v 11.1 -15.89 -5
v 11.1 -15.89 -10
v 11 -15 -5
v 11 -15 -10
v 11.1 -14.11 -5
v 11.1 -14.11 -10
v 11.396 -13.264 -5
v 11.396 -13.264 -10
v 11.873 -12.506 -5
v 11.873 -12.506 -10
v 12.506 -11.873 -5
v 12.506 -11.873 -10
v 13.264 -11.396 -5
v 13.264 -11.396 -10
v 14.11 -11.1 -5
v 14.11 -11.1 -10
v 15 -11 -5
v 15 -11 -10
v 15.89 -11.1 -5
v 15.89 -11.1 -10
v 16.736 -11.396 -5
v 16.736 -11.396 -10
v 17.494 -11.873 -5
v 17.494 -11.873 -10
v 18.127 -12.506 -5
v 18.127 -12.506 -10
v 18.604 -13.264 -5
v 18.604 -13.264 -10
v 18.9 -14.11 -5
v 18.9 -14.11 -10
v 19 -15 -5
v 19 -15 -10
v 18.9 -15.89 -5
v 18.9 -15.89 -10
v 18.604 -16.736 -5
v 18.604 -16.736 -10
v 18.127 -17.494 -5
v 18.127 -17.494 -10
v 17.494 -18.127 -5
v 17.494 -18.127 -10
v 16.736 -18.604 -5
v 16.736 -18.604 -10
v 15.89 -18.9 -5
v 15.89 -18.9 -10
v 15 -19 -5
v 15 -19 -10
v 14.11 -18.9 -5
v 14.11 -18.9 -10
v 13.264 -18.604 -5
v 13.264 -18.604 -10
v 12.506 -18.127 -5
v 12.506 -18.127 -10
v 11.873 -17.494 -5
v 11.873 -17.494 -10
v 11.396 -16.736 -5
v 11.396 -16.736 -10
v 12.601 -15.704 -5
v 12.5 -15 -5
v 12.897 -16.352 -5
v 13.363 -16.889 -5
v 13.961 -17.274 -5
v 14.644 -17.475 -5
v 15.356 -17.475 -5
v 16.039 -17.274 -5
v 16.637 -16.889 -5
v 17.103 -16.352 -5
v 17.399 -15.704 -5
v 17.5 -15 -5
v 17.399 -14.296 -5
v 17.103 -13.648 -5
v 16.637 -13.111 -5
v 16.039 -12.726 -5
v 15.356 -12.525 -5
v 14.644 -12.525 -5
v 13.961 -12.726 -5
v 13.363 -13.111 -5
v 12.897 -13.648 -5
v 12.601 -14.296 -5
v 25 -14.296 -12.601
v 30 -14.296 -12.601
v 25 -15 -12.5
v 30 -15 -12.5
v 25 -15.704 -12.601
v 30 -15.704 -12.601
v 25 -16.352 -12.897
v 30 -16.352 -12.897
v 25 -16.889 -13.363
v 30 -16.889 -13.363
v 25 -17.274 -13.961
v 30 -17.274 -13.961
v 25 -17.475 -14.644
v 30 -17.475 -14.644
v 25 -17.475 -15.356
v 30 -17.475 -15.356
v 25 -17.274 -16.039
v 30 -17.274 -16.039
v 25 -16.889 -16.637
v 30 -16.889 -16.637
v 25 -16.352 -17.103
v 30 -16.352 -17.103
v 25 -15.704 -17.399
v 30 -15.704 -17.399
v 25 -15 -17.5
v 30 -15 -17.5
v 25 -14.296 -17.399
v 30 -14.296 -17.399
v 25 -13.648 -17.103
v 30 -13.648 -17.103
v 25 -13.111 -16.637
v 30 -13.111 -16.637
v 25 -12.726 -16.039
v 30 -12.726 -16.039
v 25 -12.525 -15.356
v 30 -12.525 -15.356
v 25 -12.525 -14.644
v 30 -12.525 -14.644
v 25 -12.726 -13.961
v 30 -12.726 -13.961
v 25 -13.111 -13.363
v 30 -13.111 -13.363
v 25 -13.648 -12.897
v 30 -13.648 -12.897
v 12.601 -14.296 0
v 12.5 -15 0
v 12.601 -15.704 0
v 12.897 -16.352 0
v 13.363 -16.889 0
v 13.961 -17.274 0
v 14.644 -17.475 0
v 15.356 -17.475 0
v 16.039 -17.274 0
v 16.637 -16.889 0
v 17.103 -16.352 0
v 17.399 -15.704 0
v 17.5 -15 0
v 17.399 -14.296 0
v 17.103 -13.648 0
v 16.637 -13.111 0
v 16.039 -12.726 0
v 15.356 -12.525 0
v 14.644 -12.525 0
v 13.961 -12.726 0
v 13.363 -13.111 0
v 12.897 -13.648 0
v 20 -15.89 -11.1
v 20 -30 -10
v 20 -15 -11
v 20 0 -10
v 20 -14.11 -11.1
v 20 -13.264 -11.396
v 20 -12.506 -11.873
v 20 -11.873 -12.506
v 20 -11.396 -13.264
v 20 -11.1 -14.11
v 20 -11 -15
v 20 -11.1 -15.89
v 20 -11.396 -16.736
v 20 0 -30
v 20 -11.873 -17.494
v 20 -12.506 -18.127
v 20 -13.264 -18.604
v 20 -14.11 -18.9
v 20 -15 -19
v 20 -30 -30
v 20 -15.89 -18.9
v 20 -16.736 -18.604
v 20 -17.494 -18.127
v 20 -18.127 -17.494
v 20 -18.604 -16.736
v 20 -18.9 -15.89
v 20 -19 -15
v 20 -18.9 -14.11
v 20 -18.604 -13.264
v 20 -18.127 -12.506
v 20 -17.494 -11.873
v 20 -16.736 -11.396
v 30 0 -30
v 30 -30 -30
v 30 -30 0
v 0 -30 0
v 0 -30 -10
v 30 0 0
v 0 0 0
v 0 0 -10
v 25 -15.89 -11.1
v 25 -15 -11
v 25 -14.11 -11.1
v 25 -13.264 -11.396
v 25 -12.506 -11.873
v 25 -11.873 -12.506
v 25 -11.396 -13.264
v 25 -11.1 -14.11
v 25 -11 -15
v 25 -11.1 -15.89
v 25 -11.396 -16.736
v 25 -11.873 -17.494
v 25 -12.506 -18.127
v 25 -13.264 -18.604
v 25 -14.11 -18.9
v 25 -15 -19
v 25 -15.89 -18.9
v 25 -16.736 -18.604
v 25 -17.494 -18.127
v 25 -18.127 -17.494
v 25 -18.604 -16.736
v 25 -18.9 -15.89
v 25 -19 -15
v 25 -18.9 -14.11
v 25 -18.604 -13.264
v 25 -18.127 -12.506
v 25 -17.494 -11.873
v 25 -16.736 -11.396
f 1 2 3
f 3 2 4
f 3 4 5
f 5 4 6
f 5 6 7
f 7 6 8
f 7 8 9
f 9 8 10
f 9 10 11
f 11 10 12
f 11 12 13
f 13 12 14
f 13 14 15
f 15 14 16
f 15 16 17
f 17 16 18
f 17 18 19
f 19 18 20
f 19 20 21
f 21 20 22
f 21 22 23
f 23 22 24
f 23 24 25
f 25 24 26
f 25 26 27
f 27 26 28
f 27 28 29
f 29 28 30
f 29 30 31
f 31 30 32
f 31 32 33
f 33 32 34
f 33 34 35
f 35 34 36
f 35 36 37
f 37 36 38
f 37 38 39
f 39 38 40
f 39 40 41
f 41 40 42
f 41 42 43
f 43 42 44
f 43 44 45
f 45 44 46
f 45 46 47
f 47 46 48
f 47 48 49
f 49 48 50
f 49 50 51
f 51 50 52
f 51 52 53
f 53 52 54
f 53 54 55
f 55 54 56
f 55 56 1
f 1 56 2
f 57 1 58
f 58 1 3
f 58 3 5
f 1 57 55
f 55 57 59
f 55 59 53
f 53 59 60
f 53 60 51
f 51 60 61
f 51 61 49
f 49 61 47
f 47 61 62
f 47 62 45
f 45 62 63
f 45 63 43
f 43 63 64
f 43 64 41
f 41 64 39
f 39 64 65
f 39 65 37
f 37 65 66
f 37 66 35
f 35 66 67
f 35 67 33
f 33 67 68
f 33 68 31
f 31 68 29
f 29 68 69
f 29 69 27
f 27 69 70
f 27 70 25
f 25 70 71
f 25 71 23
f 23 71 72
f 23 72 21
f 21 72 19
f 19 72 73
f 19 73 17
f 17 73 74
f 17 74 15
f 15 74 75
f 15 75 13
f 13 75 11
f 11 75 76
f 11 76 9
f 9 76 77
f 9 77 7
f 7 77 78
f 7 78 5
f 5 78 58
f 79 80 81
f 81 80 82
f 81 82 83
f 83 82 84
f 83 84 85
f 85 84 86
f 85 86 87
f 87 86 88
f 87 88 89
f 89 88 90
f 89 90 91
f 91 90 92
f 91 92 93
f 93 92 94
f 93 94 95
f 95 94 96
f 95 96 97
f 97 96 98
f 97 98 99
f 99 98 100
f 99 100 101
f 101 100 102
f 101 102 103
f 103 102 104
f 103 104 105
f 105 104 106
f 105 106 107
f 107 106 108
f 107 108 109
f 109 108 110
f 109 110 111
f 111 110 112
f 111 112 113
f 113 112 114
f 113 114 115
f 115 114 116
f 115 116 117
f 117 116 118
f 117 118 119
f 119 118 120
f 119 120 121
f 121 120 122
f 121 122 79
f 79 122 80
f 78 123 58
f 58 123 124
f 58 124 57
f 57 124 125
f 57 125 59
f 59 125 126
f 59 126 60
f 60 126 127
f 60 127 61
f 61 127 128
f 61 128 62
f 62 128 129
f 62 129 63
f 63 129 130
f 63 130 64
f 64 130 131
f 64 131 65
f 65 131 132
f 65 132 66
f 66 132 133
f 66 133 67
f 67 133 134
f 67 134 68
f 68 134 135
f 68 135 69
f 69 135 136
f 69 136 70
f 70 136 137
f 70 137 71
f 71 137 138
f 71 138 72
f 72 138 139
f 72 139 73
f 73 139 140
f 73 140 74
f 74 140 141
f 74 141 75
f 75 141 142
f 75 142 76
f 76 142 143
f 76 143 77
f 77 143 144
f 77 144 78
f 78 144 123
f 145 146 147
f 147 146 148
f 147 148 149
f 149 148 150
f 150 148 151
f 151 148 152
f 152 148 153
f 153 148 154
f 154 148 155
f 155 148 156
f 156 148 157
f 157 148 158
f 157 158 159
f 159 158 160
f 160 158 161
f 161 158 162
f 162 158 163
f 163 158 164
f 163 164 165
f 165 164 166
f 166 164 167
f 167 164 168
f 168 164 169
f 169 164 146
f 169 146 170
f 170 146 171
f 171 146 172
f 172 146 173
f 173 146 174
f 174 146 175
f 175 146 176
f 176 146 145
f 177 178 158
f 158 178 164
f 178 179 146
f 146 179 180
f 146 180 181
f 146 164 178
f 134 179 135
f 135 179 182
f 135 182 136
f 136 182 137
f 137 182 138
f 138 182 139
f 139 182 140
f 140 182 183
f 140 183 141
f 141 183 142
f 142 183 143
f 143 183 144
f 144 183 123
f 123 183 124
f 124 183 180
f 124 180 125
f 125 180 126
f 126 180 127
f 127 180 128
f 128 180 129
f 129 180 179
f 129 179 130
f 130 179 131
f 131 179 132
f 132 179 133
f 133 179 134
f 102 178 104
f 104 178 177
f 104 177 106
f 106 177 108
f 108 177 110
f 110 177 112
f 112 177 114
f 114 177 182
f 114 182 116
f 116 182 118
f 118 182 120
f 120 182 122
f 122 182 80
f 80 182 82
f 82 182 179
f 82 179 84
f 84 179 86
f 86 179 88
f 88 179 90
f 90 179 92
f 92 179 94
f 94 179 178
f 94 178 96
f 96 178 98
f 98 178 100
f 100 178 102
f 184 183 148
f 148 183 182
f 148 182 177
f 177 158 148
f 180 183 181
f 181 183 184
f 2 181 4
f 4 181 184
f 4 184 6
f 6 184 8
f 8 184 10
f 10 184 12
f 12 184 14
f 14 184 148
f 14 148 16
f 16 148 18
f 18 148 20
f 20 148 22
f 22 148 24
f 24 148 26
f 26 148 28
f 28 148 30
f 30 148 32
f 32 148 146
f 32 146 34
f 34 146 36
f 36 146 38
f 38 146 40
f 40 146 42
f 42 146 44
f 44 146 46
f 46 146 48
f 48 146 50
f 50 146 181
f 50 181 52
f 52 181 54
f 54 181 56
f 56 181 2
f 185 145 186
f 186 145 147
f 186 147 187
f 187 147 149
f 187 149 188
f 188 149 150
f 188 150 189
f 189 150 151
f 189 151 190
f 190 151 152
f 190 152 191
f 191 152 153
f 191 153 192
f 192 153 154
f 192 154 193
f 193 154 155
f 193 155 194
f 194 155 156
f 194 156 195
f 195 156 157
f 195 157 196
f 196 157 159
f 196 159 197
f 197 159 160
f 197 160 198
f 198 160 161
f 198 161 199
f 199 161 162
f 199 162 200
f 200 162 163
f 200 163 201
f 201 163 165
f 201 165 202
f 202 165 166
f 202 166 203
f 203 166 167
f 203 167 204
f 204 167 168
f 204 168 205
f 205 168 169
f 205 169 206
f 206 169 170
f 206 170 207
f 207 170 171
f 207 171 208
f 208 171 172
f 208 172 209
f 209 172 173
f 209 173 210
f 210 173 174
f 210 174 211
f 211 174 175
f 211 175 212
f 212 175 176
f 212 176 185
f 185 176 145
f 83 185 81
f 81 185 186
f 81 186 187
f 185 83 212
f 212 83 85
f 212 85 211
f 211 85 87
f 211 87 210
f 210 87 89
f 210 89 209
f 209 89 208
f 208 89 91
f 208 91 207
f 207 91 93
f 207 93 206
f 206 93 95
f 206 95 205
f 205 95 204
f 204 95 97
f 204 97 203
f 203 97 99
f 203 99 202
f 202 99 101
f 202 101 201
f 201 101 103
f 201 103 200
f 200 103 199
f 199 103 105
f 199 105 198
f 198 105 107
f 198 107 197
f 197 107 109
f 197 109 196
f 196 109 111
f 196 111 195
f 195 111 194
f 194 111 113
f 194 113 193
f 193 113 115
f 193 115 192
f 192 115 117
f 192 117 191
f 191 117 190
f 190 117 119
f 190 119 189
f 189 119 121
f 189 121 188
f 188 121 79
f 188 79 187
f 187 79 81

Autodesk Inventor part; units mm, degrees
ref_plane "YZ Plane" through (0, 0, 0) normal (1, 0, 0) x (0, 1, 0)
ref_plane "XZ Plane" through (0, 0, 0) normal (0, 1, 0) x (-1, 0, 0)
ref_plane "XY Plane" through (0, 0, 0) normal (0, 0, 1) x (1, 0, 0)
sketch "Sketch34" plane through (0, 0, 0) normal (0, 0, 1) x (1, 0, 0)
  line L0 (0, 0) -> (30, 0)
  line L1 (30, 0) -> (30, -30)
  line L2 (30, -30) -> (0, -30)
  line L3 (0, -30) -> (0, 0)
  dimension "d112" = 30
  dimension "d113" = 30
extrude "Extrusion25" add sketch "Sketch34" against normal blind 10
sketch "Sketch35" plane through (30, -30, 0) normal (1, 0, 0) x (0, 0, -1)
  line L0 (0, 30) -> (10, 30) projected
  line L1 (0, 30) -> (30, 30)
  line L2 (30, 30) -> (30, 0)
  line L3 (30, 0) -> (0, 0)
  line L4 (0, 0) -> (0, 30)
  dimension "d116" = 30
  dimension "d117" = 30
extrude "Extrusion26" add sketch "Sketch35" against normal blind 10
sketch "Sketch36" plane through (0, 0, 0) normal (0, 0, 1) x (1, 0, 0)
  circle A0 centre (15, -15) radius 2.5
  point P0 (0, 0)
  dimension "d120" = 5
extrude "Extrusion27" cut sketch "Sketch36" against normal blind 10
sketch "Sketch37" plane through (30, -30, 0) normal (1, 0, 0) x (0, 0, -1)
  point P0 (0, 30)
sketch "Sketch38" plane through (30, -30, 0) normal (1, 0, 0) x (0, 0, -1)
  circle A0 centre (15, 15) radius 2.5
  point P0 (0, 30)
  dimension "d123" = 5
extrude "Extrusion28" cut sketch "Sketch38" against normal blind 10
sketch "Sketch39" plane through (30, -30, 0) normal (1, 0, 0) x (0, 0, -1)
  point P0 (0, 30)
sketch "Sketch42" plane through (0, 0, -10) normal (0, 0, -1) x (-1, 0, 0)
  circle A0 centre (-15, -15) radius 4
  point P0 (0, 0)
  dimension "d132" = 8
extrude "Extrusion31" cut sketch "Sketch42" against normal blind 5
sketch "Sketch43" plane through (20, -30, 0) normal (-1, 0, 0) x (0, 0, 1)
  circle A0 centre (-15, 15) radius 4
  point P0 (0, 30)
  dimension "d135" = 8
extrude "Extrusion32" cut sketch "Sketch43" against normal blind 5
properties part number "tunnel corner bracket"
